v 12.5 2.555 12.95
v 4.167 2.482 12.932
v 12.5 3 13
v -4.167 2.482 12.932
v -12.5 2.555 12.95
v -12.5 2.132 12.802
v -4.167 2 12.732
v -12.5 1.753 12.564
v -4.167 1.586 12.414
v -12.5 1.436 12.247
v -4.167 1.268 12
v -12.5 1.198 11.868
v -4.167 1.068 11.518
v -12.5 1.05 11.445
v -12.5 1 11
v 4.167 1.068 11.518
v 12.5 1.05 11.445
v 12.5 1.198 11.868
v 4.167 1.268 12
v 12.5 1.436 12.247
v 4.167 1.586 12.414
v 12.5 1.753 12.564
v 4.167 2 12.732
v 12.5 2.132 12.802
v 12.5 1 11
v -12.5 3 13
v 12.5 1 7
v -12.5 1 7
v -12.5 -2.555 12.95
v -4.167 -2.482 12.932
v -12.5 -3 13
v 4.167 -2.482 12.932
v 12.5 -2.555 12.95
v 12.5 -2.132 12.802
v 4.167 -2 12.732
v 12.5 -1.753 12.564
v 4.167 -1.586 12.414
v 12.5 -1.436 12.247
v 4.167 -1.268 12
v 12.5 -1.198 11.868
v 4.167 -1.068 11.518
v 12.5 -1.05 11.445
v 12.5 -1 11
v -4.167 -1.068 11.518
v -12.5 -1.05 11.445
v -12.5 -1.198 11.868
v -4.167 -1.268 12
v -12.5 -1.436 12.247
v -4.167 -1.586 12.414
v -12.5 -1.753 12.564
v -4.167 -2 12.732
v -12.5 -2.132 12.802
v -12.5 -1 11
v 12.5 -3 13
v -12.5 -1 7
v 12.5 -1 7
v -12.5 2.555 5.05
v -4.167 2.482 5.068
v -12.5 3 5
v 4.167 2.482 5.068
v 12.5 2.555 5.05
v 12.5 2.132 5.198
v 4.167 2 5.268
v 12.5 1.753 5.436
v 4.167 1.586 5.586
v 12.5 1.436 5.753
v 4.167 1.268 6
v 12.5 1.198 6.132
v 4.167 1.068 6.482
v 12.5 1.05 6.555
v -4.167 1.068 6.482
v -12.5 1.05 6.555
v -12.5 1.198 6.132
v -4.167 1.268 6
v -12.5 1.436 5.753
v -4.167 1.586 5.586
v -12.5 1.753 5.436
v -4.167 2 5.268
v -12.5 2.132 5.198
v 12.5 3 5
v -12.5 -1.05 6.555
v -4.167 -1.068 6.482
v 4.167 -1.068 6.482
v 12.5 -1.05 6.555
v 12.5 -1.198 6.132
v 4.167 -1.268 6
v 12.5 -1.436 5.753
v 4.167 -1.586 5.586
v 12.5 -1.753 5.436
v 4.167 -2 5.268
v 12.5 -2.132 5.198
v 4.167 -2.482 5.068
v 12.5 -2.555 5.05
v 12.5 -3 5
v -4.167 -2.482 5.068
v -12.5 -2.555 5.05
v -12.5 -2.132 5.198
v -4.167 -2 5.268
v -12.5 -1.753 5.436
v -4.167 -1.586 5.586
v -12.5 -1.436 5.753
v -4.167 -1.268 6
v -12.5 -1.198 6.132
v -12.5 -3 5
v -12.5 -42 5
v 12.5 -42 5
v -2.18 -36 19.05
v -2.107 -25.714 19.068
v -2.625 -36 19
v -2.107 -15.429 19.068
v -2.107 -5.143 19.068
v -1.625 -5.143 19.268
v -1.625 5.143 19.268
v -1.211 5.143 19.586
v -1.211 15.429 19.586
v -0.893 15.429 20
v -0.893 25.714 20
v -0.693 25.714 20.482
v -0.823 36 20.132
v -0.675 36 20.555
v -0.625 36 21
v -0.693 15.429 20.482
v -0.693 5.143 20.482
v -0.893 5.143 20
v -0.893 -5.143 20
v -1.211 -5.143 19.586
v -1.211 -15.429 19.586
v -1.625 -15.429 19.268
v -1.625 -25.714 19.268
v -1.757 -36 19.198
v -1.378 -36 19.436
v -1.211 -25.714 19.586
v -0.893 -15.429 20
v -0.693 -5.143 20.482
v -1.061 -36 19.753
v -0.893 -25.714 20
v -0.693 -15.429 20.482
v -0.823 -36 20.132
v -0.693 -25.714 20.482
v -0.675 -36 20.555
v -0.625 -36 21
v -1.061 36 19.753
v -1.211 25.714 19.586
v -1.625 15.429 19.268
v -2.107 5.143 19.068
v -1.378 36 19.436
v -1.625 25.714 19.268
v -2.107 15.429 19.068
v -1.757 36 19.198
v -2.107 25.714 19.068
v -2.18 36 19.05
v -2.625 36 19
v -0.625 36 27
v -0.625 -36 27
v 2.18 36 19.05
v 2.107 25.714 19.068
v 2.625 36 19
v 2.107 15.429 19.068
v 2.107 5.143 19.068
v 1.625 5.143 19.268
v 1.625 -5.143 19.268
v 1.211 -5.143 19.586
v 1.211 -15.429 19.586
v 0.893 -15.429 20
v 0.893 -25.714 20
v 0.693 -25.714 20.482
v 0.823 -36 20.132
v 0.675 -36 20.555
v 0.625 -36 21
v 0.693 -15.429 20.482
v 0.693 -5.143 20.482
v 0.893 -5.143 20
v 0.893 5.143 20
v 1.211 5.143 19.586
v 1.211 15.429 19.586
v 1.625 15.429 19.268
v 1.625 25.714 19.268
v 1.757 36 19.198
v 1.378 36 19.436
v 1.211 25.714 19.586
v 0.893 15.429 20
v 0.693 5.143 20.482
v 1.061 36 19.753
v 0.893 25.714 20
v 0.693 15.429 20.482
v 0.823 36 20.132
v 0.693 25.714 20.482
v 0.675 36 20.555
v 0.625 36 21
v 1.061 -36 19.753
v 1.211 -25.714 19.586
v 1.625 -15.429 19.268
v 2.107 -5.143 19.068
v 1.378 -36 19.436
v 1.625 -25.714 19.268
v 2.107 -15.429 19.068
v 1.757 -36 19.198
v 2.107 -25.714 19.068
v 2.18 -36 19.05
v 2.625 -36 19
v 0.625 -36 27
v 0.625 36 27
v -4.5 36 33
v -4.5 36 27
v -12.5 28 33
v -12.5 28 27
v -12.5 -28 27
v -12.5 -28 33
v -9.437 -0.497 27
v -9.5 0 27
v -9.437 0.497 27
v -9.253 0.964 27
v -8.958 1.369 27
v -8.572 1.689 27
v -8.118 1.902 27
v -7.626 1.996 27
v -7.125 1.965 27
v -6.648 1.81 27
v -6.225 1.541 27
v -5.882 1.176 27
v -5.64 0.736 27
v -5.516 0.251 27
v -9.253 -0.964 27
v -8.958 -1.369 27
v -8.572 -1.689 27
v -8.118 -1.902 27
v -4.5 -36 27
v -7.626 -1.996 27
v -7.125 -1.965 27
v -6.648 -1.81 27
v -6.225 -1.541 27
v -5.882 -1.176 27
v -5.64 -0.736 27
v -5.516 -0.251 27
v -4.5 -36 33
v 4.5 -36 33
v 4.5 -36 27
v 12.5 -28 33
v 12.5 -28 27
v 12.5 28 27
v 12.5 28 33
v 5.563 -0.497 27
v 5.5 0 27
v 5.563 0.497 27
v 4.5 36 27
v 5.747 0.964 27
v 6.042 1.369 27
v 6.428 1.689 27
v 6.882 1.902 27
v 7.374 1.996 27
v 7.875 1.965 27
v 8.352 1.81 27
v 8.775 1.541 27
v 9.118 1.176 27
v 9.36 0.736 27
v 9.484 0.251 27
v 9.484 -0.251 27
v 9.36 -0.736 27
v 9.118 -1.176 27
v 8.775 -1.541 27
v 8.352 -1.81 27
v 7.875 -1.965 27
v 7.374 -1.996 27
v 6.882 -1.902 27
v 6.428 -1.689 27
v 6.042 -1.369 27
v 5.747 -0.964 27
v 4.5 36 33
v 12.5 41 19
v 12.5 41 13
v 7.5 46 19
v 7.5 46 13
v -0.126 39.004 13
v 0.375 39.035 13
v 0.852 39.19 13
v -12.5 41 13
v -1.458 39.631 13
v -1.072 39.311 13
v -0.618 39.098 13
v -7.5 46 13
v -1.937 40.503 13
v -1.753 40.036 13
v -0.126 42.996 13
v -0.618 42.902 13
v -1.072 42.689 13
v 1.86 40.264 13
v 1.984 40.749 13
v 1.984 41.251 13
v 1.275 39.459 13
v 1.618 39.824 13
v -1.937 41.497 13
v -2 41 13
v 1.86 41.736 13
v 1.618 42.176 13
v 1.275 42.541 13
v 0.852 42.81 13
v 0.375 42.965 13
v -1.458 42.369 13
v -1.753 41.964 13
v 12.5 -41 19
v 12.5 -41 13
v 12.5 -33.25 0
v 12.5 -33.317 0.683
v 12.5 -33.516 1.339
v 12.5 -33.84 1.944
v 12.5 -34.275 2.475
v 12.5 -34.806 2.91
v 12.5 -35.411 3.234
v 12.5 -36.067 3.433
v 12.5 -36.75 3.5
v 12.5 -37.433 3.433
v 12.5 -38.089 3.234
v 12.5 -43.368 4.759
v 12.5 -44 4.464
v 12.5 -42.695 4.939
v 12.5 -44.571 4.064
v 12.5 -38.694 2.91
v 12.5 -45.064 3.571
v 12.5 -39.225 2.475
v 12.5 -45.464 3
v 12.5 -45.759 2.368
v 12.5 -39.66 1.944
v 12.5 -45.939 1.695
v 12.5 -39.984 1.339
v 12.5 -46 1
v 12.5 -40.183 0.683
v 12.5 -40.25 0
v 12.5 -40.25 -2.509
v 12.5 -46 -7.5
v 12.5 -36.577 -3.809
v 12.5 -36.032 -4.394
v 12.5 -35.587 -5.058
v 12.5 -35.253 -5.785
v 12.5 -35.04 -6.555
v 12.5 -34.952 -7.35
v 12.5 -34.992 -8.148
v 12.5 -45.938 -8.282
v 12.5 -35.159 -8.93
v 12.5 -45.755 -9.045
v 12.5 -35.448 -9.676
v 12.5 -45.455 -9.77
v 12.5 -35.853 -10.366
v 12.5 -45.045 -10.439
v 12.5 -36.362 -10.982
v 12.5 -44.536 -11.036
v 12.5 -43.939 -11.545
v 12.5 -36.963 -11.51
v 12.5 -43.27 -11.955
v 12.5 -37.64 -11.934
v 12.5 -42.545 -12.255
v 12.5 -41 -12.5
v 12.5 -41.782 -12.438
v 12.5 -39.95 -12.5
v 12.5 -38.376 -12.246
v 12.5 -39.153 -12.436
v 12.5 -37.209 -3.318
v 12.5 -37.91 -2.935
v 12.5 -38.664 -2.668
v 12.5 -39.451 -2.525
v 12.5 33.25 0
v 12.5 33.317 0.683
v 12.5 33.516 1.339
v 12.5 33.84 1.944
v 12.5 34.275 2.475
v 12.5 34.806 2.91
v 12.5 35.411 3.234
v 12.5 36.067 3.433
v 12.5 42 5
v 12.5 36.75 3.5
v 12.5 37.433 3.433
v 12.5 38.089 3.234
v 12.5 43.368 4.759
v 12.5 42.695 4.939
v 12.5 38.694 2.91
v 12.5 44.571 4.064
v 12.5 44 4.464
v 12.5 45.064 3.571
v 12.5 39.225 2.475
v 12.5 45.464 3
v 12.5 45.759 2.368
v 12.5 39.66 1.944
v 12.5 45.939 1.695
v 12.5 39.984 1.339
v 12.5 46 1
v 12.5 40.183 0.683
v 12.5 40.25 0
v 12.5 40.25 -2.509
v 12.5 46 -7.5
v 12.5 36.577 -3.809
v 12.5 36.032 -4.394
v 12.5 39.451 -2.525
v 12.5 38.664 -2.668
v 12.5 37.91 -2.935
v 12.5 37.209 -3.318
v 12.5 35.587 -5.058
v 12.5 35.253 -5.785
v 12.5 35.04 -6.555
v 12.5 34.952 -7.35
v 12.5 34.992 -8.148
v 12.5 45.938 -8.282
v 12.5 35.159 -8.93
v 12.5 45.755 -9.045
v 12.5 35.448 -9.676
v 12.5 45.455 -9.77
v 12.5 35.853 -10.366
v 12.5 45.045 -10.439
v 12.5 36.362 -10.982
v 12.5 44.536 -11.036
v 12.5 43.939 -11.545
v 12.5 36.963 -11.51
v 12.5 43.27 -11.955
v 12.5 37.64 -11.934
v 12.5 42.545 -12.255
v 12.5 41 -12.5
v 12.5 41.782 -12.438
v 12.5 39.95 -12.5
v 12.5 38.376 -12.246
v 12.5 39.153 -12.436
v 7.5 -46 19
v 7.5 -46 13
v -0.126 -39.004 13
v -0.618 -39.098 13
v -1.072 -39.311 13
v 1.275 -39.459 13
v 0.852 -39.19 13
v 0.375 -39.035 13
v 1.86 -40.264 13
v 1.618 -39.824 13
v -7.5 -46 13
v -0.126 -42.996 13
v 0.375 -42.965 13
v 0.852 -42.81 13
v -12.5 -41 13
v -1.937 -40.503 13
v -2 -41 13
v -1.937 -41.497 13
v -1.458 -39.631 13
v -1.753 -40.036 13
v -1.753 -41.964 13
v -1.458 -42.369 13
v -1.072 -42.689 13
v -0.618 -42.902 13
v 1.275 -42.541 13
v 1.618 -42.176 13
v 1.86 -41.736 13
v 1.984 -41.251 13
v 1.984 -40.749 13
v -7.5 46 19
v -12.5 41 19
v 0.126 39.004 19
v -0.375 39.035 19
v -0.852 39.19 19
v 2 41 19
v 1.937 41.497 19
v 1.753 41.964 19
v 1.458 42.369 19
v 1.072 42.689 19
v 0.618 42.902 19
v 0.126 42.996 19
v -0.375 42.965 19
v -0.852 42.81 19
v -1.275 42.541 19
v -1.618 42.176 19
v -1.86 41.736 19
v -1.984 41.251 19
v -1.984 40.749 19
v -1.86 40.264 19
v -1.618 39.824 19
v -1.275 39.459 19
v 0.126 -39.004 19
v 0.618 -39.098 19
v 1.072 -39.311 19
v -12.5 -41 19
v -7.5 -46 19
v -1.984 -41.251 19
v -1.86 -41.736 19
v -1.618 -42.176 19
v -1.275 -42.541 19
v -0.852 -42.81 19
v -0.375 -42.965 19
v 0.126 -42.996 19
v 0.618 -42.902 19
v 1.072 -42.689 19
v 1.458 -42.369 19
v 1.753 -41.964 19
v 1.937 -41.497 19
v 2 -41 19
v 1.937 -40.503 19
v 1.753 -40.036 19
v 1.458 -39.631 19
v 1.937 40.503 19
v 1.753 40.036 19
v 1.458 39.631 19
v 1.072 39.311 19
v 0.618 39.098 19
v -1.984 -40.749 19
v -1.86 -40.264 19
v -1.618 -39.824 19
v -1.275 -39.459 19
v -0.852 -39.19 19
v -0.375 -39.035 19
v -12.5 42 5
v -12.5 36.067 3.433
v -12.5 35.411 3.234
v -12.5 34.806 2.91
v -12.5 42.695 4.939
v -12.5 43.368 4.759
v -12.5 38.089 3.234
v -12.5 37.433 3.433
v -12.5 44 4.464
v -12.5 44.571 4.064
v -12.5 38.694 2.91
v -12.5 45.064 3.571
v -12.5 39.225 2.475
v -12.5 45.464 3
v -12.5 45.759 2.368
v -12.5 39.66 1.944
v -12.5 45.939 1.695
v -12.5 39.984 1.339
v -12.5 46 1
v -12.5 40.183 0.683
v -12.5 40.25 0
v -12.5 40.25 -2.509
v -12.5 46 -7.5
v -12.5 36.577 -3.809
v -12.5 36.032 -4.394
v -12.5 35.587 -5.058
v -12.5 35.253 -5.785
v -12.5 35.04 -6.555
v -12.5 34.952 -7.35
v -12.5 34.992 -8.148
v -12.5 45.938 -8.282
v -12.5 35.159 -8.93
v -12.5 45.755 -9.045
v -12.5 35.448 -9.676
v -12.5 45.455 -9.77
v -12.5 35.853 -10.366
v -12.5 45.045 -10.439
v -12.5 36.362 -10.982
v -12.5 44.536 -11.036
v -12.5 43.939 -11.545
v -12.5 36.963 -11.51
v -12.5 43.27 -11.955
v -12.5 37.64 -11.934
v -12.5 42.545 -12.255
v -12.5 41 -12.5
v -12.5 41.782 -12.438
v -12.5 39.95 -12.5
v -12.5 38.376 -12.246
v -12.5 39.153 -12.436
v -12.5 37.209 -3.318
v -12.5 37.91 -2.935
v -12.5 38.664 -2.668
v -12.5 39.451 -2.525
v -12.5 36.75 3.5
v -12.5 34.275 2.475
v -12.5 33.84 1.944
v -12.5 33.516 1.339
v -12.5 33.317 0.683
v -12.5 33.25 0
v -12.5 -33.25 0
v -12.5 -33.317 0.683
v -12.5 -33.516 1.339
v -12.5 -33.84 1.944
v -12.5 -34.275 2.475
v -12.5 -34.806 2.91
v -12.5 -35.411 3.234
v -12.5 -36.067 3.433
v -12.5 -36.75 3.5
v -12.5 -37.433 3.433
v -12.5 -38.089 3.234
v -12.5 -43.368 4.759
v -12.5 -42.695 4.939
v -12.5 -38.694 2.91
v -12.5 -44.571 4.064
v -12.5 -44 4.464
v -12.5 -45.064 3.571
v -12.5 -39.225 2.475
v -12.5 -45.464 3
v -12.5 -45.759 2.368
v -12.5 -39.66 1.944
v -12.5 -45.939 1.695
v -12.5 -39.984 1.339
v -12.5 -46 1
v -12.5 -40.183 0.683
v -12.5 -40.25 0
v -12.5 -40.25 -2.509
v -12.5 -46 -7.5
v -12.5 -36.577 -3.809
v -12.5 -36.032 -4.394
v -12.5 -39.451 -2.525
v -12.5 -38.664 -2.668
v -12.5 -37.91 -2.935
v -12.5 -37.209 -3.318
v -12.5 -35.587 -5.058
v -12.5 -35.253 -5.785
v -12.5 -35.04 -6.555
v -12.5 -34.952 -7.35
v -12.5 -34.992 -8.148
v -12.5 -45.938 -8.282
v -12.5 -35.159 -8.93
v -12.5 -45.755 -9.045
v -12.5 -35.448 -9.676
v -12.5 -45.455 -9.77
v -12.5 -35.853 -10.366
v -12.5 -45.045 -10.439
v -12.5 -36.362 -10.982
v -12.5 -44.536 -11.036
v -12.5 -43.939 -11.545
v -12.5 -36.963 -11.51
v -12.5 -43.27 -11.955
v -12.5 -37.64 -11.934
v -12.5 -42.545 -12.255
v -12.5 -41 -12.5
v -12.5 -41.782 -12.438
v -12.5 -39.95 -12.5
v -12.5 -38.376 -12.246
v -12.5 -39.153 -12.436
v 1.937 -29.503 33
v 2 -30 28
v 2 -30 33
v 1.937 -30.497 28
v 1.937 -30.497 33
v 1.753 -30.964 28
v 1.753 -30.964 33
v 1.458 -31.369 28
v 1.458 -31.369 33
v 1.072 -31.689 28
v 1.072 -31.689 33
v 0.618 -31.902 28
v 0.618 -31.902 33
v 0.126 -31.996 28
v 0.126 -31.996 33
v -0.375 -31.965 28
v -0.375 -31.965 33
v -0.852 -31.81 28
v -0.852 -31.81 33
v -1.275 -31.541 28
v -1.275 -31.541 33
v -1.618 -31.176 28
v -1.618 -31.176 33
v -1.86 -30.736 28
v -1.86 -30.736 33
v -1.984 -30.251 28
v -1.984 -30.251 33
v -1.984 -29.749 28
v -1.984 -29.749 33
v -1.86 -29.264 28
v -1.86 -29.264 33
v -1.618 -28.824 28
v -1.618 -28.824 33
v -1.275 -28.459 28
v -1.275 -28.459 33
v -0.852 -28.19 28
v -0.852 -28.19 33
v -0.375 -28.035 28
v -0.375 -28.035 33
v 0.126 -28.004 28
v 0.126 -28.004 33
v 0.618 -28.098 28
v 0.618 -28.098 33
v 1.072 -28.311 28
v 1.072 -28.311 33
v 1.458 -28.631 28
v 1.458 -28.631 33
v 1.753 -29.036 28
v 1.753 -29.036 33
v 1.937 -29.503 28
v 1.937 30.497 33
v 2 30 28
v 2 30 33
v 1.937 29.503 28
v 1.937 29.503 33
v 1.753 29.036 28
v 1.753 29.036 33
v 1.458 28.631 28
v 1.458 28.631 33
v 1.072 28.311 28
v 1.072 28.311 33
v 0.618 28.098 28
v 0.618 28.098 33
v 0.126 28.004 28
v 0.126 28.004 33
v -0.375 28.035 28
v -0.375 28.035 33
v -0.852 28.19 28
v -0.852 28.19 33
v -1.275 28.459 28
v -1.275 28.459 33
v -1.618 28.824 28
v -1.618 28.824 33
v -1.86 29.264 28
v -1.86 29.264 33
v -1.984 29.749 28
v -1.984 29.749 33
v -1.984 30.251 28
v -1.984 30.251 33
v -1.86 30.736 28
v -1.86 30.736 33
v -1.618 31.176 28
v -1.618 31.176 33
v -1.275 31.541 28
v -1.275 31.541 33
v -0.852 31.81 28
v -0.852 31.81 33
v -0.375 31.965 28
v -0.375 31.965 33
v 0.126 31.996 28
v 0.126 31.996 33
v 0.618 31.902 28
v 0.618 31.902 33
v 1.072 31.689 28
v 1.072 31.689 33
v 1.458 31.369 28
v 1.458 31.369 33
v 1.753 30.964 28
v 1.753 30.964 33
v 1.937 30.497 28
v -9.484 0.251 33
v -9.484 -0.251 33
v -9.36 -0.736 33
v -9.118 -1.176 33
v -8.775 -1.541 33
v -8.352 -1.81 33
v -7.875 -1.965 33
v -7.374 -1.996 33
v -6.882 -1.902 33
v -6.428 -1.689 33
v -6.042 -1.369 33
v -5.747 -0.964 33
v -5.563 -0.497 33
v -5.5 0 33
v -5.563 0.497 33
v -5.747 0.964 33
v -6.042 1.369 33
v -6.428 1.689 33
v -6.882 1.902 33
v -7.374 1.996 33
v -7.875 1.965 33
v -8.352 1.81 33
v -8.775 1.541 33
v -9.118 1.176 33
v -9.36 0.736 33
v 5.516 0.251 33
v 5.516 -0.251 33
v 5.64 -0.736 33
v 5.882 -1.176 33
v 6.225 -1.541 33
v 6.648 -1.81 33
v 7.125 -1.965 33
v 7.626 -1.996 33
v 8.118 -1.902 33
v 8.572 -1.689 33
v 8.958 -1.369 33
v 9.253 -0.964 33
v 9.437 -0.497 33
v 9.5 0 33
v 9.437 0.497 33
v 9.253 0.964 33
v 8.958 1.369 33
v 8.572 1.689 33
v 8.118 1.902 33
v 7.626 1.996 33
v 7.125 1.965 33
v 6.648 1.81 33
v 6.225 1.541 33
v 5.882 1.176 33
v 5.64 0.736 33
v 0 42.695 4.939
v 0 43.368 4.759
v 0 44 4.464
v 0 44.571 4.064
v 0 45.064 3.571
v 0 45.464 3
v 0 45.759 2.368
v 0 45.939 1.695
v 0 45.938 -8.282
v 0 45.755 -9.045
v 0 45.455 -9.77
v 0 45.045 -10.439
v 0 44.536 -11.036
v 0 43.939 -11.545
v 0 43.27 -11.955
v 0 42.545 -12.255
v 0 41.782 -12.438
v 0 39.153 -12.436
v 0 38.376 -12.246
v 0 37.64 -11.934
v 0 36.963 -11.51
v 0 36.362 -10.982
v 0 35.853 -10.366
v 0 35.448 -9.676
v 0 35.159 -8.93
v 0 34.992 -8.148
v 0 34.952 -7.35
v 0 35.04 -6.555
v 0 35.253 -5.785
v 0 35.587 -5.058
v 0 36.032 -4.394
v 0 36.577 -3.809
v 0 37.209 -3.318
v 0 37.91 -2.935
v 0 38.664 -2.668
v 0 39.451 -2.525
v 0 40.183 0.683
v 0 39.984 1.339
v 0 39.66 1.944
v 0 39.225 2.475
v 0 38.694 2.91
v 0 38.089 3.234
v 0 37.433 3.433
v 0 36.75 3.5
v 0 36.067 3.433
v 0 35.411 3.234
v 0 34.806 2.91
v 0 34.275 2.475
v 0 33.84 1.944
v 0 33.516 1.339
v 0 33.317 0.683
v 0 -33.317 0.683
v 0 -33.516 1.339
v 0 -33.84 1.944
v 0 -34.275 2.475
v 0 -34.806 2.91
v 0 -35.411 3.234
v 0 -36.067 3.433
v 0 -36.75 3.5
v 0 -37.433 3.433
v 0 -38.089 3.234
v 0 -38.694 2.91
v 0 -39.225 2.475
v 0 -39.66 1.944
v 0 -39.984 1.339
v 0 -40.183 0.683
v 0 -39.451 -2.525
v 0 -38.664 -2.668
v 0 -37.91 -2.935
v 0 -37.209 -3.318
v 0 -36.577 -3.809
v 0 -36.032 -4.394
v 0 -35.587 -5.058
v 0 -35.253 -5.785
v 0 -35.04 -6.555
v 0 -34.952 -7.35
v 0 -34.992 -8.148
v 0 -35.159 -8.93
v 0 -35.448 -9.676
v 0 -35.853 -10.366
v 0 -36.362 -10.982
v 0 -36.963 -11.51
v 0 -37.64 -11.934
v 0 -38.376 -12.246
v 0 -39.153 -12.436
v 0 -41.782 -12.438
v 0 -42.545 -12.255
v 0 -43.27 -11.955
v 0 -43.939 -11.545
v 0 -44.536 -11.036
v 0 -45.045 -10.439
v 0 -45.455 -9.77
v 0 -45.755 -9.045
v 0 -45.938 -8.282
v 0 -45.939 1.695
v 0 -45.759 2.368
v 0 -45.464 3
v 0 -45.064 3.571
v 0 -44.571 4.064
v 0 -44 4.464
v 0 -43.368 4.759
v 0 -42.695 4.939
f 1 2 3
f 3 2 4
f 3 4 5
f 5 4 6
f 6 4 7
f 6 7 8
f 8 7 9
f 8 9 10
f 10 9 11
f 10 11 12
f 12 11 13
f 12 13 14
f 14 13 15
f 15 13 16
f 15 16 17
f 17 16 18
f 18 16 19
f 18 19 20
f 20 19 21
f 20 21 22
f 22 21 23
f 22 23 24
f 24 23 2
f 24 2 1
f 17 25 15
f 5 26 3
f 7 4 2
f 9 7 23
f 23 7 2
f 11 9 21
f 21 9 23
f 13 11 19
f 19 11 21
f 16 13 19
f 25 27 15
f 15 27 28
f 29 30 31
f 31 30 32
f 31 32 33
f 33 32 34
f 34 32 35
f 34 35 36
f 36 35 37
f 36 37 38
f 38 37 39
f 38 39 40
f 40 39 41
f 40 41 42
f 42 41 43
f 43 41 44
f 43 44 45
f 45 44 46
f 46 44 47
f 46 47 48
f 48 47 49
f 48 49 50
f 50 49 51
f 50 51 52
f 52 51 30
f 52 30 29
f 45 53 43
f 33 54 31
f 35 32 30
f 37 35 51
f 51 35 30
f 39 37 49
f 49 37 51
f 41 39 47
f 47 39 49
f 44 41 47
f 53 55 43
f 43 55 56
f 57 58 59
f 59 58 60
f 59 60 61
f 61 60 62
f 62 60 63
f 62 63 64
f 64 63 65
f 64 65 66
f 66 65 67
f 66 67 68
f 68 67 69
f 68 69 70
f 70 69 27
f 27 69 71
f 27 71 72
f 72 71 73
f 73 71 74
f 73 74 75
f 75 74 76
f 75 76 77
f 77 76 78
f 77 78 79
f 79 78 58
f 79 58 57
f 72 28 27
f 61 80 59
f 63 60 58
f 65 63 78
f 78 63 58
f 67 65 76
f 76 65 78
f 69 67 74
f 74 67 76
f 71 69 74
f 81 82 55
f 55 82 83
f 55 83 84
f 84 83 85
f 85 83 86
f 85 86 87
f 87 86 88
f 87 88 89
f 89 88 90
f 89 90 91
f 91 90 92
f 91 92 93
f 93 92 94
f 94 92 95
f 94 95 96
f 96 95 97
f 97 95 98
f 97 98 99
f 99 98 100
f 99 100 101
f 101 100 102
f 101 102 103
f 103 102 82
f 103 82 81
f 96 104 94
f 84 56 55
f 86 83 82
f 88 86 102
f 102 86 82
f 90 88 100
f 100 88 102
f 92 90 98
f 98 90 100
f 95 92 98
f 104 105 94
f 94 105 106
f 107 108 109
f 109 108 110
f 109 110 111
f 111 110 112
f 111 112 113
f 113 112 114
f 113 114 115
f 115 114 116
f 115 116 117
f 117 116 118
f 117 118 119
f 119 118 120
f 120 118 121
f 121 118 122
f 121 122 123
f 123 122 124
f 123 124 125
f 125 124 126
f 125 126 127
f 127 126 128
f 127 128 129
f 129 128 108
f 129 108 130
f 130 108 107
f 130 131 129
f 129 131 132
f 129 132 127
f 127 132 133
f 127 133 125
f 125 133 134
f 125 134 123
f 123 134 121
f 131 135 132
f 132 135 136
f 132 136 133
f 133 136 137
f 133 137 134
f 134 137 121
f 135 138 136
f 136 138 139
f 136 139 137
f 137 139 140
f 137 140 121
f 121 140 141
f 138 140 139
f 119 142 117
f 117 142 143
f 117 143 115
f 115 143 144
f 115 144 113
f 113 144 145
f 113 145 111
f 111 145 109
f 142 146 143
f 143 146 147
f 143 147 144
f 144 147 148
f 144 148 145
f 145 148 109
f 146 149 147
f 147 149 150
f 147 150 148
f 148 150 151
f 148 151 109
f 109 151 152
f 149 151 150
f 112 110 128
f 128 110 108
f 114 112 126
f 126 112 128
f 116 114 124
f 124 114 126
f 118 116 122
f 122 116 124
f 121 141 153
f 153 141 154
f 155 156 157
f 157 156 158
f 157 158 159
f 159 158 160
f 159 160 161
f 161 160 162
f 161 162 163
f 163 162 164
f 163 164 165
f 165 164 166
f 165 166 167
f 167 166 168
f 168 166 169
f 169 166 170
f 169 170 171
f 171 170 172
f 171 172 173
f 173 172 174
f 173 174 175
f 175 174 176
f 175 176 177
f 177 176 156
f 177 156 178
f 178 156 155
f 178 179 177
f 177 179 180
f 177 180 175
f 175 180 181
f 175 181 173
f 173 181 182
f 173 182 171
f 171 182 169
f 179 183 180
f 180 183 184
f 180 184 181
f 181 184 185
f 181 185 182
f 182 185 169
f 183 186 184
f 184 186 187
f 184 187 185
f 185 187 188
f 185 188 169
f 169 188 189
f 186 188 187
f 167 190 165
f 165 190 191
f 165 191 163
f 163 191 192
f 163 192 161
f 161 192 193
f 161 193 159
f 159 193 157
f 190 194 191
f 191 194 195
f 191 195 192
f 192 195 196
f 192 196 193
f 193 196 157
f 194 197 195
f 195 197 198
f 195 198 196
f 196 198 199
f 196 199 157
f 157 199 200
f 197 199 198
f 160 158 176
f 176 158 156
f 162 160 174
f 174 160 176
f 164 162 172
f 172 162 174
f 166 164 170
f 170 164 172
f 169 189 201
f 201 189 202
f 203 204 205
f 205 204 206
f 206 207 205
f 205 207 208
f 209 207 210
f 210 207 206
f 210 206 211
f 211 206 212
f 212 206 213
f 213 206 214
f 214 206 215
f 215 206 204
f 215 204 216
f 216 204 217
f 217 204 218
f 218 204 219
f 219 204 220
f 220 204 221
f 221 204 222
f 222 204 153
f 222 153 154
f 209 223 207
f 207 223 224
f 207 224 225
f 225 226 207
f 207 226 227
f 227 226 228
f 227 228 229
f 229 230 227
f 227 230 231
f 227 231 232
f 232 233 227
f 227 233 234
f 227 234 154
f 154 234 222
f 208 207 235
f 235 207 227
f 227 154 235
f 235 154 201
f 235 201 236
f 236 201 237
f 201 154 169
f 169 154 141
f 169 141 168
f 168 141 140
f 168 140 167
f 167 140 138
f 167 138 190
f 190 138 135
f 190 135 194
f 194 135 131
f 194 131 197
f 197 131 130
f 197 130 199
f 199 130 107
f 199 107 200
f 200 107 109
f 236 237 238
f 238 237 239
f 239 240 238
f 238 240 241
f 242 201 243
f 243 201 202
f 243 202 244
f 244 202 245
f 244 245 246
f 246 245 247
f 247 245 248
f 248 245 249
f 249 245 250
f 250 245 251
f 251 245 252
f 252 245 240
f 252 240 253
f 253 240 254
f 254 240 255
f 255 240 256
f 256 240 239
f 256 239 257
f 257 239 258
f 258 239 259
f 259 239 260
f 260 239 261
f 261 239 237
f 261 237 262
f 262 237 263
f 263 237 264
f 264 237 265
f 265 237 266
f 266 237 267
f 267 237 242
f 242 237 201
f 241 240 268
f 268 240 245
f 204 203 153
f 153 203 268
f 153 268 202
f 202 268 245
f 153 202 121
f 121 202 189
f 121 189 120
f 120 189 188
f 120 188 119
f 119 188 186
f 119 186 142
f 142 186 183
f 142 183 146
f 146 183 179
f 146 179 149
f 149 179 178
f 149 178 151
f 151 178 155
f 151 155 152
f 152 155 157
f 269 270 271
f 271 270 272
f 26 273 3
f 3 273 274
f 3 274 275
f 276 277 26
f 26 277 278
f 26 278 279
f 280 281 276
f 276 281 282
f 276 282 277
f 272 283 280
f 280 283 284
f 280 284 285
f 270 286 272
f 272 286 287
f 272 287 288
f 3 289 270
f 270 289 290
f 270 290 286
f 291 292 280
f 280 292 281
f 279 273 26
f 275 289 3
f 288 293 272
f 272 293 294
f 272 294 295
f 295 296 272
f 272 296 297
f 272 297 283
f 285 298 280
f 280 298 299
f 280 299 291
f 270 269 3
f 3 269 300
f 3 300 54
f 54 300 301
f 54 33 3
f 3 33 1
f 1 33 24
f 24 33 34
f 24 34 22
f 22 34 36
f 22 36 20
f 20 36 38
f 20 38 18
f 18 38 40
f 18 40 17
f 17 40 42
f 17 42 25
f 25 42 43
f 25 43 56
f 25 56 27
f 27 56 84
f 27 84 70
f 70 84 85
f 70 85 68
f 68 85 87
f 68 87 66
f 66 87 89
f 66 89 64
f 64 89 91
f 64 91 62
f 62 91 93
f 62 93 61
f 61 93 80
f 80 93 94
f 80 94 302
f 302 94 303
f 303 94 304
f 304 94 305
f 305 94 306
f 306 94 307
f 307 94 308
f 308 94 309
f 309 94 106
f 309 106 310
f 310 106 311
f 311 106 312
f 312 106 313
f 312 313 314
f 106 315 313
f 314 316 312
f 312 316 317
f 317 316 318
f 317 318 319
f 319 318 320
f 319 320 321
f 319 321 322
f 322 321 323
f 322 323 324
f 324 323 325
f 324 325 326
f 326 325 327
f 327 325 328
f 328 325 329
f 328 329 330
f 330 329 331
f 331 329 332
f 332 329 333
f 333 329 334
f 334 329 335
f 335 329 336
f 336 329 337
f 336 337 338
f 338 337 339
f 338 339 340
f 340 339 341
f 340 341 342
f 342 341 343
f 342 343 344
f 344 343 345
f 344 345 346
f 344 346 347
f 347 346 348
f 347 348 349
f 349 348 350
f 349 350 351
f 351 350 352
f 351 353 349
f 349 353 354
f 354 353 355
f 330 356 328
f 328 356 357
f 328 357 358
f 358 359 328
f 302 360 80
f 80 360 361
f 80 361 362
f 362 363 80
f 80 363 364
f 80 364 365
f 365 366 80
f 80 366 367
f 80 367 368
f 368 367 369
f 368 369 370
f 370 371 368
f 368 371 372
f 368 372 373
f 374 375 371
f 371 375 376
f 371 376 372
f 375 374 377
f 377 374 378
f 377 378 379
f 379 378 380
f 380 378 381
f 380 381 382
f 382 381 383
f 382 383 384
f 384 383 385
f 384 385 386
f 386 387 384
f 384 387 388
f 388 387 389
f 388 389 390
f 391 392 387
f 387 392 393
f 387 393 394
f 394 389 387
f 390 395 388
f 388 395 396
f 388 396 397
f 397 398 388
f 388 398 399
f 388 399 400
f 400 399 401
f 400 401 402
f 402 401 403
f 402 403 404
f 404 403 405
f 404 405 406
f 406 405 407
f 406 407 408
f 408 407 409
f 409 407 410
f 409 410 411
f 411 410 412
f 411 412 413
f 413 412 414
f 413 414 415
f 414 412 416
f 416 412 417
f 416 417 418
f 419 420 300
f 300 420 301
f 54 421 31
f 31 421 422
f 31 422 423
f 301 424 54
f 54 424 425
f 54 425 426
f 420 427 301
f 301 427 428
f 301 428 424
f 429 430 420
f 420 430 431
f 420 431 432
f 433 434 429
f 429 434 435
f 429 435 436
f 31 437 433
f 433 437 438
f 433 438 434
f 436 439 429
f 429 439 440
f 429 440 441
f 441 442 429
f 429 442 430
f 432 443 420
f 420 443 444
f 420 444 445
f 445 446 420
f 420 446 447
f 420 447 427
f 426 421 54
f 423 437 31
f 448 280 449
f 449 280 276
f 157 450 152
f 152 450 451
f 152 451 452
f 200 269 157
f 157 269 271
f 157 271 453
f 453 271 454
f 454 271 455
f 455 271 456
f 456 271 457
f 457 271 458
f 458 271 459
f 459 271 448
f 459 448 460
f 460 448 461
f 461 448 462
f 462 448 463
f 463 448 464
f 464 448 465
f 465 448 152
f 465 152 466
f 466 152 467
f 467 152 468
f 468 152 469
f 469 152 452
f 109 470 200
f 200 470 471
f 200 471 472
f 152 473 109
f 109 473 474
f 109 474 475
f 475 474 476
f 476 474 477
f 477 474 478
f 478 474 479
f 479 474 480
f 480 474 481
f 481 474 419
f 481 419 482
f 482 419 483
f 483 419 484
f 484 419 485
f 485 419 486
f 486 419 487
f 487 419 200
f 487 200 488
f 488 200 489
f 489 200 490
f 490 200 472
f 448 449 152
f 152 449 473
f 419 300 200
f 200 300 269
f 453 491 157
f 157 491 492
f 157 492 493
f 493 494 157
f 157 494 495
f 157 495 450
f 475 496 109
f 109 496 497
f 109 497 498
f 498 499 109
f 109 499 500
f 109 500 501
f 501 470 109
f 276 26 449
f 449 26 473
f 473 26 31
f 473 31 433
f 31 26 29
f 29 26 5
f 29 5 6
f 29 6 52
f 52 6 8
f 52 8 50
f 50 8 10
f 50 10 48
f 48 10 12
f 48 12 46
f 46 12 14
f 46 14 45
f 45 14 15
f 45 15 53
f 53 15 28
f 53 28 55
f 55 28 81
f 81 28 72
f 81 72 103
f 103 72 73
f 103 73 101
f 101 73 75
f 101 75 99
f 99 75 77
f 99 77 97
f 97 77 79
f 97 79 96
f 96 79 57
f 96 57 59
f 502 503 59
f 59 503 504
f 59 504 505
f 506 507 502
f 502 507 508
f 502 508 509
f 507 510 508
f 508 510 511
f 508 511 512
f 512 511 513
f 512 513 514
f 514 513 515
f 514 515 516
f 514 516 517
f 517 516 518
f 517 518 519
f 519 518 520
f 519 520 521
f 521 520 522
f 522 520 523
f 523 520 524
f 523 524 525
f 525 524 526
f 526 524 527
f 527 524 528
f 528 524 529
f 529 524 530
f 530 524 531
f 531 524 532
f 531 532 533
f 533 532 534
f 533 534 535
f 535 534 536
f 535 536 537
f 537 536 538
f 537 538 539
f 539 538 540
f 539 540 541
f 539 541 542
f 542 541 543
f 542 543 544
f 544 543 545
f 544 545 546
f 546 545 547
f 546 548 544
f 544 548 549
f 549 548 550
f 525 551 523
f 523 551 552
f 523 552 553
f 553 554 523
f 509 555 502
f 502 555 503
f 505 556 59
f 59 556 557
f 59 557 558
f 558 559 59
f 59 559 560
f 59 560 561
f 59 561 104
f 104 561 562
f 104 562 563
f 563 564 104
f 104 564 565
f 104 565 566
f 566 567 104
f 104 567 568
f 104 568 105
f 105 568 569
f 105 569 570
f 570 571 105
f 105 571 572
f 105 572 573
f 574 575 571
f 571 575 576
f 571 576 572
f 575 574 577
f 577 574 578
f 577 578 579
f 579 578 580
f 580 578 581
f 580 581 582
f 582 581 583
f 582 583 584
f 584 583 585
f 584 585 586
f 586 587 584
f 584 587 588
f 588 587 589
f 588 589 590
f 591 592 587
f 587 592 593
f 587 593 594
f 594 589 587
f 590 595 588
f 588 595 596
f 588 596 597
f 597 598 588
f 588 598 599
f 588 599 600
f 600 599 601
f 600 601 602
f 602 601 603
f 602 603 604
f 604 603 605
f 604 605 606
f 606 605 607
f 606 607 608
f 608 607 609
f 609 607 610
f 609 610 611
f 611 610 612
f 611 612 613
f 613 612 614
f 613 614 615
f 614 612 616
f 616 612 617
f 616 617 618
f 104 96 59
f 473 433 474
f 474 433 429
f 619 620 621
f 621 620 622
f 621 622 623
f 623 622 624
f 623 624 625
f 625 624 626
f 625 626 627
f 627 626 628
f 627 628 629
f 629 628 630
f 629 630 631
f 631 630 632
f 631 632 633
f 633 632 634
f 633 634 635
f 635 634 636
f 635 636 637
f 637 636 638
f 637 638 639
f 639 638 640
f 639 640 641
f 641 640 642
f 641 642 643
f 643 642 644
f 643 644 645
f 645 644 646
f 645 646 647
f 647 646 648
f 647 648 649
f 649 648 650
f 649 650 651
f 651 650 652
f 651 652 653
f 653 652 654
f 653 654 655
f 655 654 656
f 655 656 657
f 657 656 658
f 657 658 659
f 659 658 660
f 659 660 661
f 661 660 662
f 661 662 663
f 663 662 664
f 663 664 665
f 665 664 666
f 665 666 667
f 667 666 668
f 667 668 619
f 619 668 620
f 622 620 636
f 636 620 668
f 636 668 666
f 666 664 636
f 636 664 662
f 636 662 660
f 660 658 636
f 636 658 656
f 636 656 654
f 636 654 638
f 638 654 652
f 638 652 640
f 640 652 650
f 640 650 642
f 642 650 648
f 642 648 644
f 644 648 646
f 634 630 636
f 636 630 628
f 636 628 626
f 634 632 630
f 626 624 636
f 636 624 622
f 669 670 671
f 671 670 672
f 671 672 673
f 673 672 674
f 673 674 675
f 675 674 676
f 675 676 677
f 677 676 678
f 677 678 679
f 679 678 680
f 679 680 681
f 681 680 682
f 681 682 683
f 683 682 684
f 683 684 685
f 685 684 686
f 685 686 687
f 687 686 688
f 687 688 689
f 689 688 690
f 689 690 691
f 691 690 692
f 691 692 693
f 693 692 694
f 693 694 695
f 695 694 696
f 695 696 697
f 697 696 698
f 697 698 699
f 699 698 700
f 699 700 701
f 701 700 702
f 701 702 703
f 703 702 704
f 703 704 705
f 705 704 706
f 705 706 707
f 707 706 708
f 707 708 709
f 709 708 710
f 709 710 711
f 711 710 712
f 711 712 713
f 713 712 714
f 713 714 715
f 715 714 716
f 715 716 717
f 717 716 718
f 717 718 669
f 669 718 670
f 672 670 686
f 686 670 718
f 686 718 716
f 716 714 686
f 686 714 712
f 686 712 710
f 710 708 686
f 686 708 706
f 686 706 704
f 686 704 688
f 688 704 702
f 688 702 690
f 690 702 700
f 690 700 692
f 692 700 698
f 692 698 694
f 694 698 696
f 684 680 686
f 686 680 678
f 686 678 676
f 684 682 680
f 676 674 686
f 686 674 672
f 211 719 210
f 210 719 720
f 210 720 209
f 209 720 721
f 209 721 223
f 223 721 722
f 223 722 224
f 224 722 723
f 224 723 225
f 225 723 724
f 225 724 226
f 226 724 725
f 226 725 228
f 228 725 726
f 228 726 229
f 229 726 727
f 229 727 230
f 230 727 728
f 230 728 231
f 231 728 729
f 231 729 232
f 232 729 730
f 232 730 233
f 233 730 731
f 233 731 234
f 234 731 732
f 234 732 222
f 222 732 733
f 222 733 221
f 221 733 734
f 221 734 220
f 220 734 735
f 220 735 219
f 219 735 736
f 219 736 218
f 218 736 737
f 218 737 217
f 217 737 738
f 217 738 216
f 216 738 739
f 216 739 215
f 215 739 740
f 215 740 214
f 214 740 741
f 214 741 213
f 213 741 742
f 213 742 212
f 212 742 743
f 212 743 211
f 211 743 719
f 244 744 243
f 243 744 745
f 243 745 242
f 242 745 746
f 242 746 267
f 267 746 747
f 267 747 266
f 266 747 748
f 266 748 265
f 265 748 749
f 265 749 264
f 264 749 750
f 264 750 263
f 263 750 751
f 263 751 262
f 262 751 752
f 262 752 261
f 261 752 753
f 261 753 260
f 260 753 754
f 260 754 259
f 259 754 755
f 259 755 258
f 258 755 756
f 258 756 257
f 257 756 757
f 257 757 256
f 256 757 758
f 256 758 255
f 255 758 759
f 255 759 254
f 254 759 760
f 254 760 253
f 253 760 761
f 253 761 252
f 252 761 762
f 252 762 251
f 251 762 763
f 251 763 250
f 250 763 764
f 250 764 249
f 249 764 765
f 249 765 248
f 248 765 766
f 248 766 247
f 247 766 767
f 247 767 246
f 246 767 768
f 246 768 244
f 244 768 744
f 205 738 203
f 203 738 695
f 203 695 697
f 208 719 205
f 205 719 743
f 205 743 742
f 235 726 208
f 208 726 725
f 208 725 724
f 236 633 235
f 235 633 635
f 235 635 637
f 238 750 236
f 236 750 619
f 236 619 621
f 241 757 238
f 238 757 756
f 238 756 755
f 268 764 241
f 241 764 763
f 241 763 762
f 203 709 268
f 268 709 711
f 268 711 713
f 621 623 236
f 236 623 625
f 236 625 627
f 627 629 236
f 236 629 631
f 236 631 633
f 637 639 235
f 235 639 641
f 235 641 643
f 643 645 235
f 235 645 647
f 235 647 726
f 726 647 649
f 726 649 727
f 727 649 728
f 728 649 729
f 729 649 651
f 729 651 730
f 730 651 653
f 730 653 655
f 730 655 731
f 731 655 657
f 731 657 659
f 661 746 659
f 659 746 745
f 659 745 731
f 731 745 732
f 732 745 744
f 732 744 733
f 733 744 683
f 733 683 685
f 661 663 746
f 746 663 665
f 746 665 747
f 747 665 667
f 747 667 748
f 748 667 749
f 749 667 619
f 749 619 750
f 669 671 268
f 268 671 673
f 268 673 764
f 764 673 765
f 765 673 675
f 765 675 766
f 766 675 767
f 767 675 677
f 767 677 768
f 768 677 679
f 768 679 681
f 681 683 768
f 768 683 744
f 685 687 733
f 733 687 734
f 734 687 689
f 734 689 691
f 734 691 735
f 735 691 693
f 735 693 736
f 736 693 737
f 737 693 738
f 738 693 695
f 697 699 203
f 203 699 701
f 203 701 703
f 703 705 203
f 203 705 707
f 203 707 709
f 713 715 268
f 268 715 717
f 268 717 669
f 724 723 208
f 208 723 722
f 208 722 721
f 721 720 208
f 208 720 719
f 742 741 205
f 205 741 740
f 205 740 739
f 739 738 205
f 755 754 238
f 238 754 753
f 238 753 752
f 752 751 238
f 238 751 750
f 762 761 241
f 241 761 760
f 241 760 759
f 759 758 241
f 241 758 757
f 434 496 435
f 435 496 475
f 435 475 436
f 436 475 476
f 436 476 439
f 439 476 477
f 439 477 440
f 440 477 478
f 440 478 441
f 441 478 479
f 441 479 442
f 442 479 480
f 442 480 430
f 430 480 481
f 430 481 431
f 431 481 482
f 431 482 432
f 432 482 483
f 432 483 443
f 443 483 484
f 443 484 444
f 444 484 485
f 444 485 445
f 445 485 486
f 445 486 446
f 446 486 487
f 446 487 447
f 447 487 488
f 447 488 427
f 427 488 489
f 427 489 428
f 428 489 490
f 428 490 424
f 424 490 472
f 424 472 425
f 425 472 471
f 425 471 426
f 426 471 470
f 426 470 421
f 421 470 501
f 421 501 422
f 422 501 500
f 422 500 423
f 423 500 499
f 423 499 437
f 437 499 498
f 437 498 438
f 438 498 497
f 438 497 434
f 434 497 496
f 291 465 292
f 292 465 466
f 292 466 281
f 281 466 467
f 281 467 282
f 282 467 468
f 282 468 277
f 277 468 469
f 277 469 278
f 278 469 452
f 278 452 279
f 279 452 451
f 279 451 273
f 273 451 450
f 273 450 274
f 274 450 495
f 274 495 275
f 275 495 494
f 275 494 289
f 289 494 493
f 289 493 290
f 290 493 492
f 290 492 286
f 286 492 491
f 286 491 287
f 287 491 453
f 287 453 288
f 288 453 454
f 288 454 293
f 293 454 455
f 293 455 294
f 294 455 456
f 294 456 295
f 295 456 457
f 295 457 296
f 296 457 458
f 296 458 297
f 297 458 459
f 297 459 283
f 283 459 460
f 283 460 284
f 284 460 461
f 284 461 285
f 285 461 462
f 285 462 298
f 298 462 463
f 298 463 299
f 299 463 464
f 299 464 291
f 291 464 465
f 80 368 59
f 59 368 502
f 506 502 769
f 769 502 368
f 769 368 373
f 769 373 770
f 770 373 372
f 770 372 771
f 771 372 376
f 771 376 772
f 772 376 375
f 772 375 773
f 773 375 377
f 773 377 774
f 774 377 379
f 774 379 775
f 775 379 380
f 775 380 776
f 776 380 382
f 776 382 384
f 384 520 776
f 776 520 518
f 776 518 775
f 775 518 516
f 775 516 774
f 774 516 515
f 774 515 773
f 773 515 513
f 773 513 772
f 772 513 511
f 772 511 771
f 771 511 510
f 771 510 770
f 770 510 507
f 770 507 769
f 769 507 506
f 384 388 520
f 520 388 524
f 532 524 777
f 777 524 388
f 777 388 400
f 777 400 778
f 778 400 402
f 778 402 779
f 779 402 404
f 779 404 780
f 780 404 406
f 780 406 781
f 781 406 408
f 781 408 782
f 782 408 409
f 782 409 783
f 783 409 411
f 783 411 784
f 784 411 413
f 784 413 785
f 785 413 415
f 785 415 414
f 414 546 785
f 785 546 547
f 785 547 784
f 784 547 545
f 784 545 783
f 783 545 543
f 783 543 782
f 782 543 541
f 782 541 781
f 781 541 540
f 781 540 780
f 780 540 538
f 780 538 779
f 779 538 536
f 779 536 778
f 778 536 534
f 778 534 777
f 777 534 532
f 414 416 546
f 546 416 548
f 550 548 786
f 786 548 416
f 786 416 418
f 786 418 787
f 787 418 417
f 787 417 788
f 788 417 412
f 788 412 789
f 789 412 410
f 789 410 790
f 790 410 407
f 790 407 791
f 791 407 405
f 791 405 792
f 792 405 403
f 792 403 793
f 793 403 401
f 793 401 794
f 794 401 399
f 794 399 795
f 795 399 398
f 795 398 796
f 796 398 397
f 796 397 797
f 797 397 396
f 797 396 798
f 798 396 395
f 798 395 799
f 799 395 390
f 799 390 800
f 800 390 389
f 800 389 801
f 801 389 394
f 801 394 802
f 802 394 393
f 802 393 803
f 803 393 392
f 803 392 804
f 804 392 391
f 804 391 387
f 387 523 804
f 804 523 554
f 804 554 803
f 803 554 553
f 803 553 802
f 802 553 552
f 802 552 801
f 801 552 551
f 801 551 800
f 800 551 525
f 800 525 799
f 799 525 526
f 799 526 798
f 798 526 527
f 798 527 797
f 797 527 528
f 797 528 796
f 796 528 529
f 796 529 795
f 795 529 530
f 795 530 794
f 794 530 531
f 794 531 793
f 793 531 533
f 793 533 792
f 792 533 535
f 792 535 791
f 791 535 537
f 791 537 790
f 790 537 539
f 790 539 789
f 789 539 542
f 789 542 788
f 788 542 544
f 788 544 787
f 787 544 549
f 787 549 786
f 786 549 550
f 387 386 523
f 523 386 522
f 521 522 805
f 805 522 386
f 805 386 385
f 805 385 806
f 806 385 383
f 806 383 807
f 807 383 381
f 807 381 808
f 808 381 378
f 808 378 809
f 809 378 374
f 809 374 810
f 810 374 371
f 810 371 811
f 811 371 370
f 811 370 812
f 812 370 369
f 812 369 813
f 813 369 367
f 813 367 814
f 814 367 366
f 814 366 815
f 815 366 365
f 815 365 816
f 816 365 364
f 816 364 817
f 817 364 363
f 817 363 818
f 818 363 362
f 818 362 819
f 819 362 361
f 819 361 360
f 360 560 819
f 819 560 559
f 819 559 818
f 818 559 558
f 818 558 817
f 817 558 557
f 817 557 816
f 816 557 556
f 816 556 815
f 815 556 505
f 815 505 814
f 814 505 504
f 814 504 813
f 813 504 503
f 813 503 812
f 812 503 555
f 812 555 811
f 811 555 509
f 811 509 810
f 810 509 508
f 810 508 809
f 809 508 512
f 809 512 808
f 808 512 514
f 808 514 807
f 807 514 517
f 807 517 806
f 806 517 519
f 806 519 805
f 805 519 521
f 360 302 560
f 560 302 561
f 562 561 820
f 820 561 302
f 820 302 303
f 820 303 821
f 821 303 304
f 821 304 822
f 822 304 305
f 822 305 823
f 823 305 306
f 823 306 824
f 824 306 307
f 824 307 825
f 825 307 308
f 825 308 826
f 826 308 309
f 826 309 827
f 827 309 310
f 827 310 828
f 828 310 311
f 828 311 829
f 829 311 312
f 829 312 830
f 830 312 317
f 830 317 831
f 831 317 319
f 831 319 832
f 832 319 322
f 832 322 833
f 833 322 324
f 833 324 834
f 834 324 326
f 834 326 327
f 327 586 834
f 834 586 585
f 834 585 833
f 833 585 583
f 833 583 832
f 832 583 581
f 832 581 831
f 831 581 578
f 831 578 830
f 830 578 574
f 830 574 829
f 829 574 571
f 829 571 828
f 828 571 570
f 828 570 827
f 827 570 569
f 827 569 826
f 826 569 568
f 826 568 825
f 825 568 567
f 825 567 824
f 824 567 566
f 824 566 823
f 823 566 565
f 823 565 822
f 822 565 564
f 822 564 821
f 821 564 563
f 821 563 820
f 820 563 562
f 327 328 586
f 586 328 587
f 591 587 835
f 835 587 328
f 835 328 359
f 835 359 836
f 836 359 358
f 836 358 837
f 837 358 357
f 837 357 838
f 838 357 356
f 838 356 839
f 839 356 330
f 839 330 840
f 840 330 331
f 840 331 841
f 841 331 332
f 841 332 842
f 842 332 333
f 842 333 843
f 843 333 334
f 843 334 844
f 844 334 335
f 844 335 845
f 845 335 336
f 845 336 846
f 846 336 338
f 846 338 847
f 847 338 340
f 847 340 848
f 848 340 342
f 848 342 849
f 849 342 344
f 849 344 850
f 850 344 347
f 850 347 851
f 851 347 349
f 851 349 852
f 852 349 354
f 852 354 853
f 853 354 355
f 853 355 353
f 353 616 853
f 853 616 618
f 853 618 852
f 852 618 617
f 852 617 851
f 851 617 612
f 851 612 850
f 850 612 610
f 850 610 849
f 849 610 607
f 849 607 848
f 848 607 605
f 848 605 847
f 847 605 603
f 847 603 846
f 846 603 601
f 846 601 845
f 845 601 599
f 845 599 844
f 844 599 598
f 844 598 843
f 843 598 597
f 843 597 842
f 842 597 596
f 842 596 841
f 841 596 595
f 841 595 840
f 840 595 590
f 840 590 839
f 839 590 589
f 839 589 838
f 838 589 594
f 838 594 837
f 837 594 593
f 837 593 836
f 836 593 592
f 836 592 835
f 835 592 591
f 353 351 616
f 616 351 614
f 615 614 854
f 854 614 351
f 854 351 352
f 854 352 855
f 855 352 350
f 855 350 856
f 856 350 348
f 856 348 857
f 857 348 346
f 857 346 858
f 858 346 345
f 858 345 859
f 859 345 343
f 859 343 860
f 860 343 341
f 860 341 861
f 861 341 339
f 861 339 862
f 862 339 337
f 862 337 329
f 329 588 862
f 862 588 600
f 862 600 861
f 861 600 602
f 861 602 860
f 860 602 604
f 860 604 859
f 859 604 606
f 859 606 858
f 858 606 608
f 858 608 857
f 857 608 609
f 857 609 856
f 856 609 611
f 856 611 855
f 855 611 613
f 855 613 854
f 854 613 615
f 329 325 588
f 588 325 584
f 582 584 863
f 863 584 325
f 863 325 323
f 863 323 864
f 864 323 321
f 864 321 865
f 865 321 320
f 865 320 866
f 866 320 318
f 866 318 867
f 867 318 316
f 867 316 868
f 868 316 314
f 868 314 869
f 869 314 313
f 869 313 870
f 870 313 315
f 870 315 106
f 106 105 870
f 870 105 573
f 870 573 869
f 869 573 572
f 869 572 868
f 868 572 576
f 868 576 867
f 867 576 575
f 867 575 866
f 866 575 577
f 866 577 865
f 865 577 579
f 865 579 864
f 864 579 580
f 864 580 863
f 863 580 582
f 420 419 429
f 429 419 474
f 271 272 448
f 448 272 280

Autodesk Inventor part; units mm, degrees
ref_plane "YZ Plane" through (0, 0, 0) normal (1, 0, 0) x (0, 1, 0)
ref_plane "XZ Plane" through (0, 0, 0) normal (0, 1, 0) x (-1, 0, 0)
ref_plane "XY Plane" through (0, 0, 0) normal (0, 0, 1) x (1, 0, 0)
sketch "Sketch1" plane through (0, 0, 0) normal (1, 0, 0) x (0, 1, 0)
  line L0 (-46, -7.5) -> (-46, 1)
  line L1 (-42, 5) -> (42, 5)
  line L2 (46, 1) -> (46, -7.5)
  line L3 (-41, -12.5) -> (-39.95, -12.5)
  line L4 (-40.25, -2.509) -> (-40.25, 0)
  line L5 (-40.25, 0) -> (40.25, 0)
  line L6 (-1, 5) -> (-1, 13)
  line L7 (-1, 13) -> (1, 13)
  line L8 (1, 13) -> (1, 5)
  line L9 (-46, 19) -> (46, 19)
  line L10 (46, 19) -> (46, 13)
  line L11 (46, 13) -> (-46, 13)
  line L12 (-46, 13) -> (-46, 19)
  arc A0 (46, 1) -> (42, 5) centre (42, 1) ccw
  arc A1 (-42, 5) -> (-46, 1) centre (-42, 1) ccw
  arc A2 (40.25, 0) -> (33.25, 0) centre (36.75, 0) ccw
  arc A3 (-33.25, 0) -> (-40.25, 0) centre (-36.75, 0) ccw
  line L13 (40.25, 0) -> (40.25, -2.509)
  arc A4 (-39.95, -12.5) -> (-40.25, -2.509) centre (-39.95, -7.5) ccw
  arc A5 (-46, -7.5) -> (-41, -12.5) centre (-41, -7.5) ccw
  circle A6 centre (39.95, -7.5) radius 5
  line L14 (41, -12.5) -> (39.95, -12.5)
  arc A7 (41, -12.5) -> (46, -7.5) centre (41, -7.5) ccw
  point P0 (0, 0)
  point P1 (-46, -12.5)
  point P2 (-46, 5)
  point P3 (46, 5)
  point P4 (46, -12.5)
  point P5 (0, 5)
  point P6 (0, 0)
  point P7 (0, 13)
  point P8 (1, 13)
  point P9 (-1, 13)
  point P10 (-40.25, -1.2545)
  point P11 (40.25, -1.2545)
  point P12 (40.25, -2.509)
  dimension "d71" = 10
  dimension "d2" = 80.5
  dimension "d10" = 92
  dimension "d11" = 5
  dimension "d13" = 2
  dimension "d14" = 8
  dimension "d15" = 6
  dimension "d52" = 4
  dimension "d53" = 7
  dimension "d54" = 7
  dimension "d67" = 10
  dimension "d68" = 7.5
  dimension "d69" = 0.3
  dimension "d70" = 5
  dimension "d72" = 0.3
  dimension "d73" = 5
extrude "Extrusion1" add sketch "Sketch1" along normal mid plane 25 contours L0 A1 L1 A0 L2 A7 L14 A6 L13 A2 L5 A3 L4 A4 L3 A5 | L6 L7 L8 L1 | L11 L12 L9 L10 L7 | A6
sketch "Sketch2" plane through (-12.5, -46, 19) normal (0, 0, 1) x (1, 0, 0)
  line L0 (0, 0) -> (25, 0) projected
  line L1 (25, 92) -> (25, 0) projected
  line L2 (0, 92) -> (25, 92) projected
  line L3 (0, 0) -> (0, 92) projected
  line L4 (13.125, 10) -> (11.875, 10)
  line L5 (11.875, 10) -> (11.875, 82)
  line L6 (11.875, 82) -> (13.125, 82)
  line L7 (13.125, 82) -> (13.125, 10)
  line L8 (13.125, 10) -> (11.875, 82) construction
  line L9 (11.875, 10) -> (13.125, 82) construction
  point P0 (12.5, 46)
  point P1 (20.75, 0)
  point P2 (20.75, 50)
  point P3 (19.25, 50)
  point P4 (19.25, 0)
  point P5 (12.5, 10)
  dimension "d16" = 1.25
  dimension "d19" = 10
extrude "Extrusion2" add sketch "Sketch2" along normal blind 8 contours L4 L5 L6 L7
sketch "Sketch3" plane through (-12.5, -46, 19) normal (0, 0, 1) x (1, 0, 0)
  line L0 (13.125, 82) -> (13.125, 10) projected
  line L1 (13.125, 10) -> (11.875, 10) projected
  line L2 (11.875, 10) -> (11.875, 82) projected
  line L3 (11.875, 82) -> (13.125, 82) projected
  line L4 (0, 0) -> (25, 0) projected
  line L5 (25, 92) -> (25, 0) projected
  line L6 (0, 92) -> (25, 92) projected
  line L7 (0, 0) -> (0, 92) projected
  line L8 (13.125, 10) -> (11.875, 10) projected
  line L9 (12.5, 10) -> (12.5, 0)
  line L10 (11.875, 82) -> (13.125, 82) projected
  line L11 (12.5, 82) -> (12.5, 92)
  point P0 (12.5, 46)
  point P1 (12.5, 5)
  point P2 (12.5, 87)
hole "Hole1" at (0, -41, 19) at (0, 41, 19) direction (0, 0, -1) diameter 4 depth 8 tip angle 118
sketch "Sketch4" plane through (-12.5, -46, 27) normal (0, 0, 1) x (1, 0, 0)
  line L0 (0, 10) -> (25, 10)
  line L1 (25, 10) -> (25, 82)
  line L2 (25, 82) -> (0, 82)
  line L3 (0, 82) -> (0, 10)
  line L4 (0, 10) -> (25, 82) construction
  line L5 (25, 10) -> (0, 82) construction
  line L6 (13.125, 82) -> (11.875, 82) projected
  line L7 (0, 0) -> (0, 92) projected
  point P0 (12.5, 46)
  point P1 (12.5, 82)
  point P2 (0, 46)
extrude "Extrusion3" add sketch "Sketch4" along normal blind 6
sketch "Sketch5" plane through (-12.5, -46, 33) normal (0, 0, 1) x (1, 0, 0)
  line L0 (25, 82) -> (0, 82) projected
  line L1 (0, 82) -> (0, 10) projected
  line L2 (0, 10) -> (25, 10) projected
  line L3 (25, 10) -> (25, 82) projected
  line L4 (5, 46) -> (20, 46)
  point P0 (12.5, 46)
  point P1 (12.5, 46)
  dimension "d29" = 5
hole "Hole2" at (-7.5, 0, 33) at (7.5, 0, 33) direction (0, 0, -1) diameter 4 depth 8 tip angle 118
sketch "Sketch6" plane through (-12.5, -46, 33) normal (0, 0, 1) x (1, 0, 0)
  circle A0 centre (5, 46) radius 2 projected
  circle A1 centre (20, 46) radius 2 projected
  line L0 (25, 82) -> (0, 82) projected
  line L1 (0, 82) -> (0, 10) projected
  line L2 (0, 10) -> (25, 10) projected
  line L3 (25, 10) -> (25, 82) projected
  line L4 (12.5, 16) -> (12.5, 76)
  point P0 (12.5, 46)
  point P1 (12.5, 46)
  point P2 (12.5, 46)
  dimension "d38" = 60
hole "Hole3" at (0, -30, 33) at (0, 30, 33) direction (0, 0, -1) diameter 4 depth 5
chamfer "Chamfer1" distance 5 angle 45 4 edges at (-12.5, -46, 16) (-12.5, 46, 16) (12.5, -46, 16) (12.5, 46, 16)
chamfer "Chamfer2" distance 8 angle 45 4 edges at (12.5, 36, 30) (12.5, -36, 30) (-12.5, -36, 30) (-12.5, 36, 30)
fillet "Fillet1" radius 2 6 edges at (0.625, 0, 19) (-0.625, 0, 19) (0, -1, 5) (0, 1, 5) (0, -1, 13) (0, 1, 13)
equation "\"d72\" = d69"
properties part number "Rail-FlextureBase" material "ABS Plastic"
